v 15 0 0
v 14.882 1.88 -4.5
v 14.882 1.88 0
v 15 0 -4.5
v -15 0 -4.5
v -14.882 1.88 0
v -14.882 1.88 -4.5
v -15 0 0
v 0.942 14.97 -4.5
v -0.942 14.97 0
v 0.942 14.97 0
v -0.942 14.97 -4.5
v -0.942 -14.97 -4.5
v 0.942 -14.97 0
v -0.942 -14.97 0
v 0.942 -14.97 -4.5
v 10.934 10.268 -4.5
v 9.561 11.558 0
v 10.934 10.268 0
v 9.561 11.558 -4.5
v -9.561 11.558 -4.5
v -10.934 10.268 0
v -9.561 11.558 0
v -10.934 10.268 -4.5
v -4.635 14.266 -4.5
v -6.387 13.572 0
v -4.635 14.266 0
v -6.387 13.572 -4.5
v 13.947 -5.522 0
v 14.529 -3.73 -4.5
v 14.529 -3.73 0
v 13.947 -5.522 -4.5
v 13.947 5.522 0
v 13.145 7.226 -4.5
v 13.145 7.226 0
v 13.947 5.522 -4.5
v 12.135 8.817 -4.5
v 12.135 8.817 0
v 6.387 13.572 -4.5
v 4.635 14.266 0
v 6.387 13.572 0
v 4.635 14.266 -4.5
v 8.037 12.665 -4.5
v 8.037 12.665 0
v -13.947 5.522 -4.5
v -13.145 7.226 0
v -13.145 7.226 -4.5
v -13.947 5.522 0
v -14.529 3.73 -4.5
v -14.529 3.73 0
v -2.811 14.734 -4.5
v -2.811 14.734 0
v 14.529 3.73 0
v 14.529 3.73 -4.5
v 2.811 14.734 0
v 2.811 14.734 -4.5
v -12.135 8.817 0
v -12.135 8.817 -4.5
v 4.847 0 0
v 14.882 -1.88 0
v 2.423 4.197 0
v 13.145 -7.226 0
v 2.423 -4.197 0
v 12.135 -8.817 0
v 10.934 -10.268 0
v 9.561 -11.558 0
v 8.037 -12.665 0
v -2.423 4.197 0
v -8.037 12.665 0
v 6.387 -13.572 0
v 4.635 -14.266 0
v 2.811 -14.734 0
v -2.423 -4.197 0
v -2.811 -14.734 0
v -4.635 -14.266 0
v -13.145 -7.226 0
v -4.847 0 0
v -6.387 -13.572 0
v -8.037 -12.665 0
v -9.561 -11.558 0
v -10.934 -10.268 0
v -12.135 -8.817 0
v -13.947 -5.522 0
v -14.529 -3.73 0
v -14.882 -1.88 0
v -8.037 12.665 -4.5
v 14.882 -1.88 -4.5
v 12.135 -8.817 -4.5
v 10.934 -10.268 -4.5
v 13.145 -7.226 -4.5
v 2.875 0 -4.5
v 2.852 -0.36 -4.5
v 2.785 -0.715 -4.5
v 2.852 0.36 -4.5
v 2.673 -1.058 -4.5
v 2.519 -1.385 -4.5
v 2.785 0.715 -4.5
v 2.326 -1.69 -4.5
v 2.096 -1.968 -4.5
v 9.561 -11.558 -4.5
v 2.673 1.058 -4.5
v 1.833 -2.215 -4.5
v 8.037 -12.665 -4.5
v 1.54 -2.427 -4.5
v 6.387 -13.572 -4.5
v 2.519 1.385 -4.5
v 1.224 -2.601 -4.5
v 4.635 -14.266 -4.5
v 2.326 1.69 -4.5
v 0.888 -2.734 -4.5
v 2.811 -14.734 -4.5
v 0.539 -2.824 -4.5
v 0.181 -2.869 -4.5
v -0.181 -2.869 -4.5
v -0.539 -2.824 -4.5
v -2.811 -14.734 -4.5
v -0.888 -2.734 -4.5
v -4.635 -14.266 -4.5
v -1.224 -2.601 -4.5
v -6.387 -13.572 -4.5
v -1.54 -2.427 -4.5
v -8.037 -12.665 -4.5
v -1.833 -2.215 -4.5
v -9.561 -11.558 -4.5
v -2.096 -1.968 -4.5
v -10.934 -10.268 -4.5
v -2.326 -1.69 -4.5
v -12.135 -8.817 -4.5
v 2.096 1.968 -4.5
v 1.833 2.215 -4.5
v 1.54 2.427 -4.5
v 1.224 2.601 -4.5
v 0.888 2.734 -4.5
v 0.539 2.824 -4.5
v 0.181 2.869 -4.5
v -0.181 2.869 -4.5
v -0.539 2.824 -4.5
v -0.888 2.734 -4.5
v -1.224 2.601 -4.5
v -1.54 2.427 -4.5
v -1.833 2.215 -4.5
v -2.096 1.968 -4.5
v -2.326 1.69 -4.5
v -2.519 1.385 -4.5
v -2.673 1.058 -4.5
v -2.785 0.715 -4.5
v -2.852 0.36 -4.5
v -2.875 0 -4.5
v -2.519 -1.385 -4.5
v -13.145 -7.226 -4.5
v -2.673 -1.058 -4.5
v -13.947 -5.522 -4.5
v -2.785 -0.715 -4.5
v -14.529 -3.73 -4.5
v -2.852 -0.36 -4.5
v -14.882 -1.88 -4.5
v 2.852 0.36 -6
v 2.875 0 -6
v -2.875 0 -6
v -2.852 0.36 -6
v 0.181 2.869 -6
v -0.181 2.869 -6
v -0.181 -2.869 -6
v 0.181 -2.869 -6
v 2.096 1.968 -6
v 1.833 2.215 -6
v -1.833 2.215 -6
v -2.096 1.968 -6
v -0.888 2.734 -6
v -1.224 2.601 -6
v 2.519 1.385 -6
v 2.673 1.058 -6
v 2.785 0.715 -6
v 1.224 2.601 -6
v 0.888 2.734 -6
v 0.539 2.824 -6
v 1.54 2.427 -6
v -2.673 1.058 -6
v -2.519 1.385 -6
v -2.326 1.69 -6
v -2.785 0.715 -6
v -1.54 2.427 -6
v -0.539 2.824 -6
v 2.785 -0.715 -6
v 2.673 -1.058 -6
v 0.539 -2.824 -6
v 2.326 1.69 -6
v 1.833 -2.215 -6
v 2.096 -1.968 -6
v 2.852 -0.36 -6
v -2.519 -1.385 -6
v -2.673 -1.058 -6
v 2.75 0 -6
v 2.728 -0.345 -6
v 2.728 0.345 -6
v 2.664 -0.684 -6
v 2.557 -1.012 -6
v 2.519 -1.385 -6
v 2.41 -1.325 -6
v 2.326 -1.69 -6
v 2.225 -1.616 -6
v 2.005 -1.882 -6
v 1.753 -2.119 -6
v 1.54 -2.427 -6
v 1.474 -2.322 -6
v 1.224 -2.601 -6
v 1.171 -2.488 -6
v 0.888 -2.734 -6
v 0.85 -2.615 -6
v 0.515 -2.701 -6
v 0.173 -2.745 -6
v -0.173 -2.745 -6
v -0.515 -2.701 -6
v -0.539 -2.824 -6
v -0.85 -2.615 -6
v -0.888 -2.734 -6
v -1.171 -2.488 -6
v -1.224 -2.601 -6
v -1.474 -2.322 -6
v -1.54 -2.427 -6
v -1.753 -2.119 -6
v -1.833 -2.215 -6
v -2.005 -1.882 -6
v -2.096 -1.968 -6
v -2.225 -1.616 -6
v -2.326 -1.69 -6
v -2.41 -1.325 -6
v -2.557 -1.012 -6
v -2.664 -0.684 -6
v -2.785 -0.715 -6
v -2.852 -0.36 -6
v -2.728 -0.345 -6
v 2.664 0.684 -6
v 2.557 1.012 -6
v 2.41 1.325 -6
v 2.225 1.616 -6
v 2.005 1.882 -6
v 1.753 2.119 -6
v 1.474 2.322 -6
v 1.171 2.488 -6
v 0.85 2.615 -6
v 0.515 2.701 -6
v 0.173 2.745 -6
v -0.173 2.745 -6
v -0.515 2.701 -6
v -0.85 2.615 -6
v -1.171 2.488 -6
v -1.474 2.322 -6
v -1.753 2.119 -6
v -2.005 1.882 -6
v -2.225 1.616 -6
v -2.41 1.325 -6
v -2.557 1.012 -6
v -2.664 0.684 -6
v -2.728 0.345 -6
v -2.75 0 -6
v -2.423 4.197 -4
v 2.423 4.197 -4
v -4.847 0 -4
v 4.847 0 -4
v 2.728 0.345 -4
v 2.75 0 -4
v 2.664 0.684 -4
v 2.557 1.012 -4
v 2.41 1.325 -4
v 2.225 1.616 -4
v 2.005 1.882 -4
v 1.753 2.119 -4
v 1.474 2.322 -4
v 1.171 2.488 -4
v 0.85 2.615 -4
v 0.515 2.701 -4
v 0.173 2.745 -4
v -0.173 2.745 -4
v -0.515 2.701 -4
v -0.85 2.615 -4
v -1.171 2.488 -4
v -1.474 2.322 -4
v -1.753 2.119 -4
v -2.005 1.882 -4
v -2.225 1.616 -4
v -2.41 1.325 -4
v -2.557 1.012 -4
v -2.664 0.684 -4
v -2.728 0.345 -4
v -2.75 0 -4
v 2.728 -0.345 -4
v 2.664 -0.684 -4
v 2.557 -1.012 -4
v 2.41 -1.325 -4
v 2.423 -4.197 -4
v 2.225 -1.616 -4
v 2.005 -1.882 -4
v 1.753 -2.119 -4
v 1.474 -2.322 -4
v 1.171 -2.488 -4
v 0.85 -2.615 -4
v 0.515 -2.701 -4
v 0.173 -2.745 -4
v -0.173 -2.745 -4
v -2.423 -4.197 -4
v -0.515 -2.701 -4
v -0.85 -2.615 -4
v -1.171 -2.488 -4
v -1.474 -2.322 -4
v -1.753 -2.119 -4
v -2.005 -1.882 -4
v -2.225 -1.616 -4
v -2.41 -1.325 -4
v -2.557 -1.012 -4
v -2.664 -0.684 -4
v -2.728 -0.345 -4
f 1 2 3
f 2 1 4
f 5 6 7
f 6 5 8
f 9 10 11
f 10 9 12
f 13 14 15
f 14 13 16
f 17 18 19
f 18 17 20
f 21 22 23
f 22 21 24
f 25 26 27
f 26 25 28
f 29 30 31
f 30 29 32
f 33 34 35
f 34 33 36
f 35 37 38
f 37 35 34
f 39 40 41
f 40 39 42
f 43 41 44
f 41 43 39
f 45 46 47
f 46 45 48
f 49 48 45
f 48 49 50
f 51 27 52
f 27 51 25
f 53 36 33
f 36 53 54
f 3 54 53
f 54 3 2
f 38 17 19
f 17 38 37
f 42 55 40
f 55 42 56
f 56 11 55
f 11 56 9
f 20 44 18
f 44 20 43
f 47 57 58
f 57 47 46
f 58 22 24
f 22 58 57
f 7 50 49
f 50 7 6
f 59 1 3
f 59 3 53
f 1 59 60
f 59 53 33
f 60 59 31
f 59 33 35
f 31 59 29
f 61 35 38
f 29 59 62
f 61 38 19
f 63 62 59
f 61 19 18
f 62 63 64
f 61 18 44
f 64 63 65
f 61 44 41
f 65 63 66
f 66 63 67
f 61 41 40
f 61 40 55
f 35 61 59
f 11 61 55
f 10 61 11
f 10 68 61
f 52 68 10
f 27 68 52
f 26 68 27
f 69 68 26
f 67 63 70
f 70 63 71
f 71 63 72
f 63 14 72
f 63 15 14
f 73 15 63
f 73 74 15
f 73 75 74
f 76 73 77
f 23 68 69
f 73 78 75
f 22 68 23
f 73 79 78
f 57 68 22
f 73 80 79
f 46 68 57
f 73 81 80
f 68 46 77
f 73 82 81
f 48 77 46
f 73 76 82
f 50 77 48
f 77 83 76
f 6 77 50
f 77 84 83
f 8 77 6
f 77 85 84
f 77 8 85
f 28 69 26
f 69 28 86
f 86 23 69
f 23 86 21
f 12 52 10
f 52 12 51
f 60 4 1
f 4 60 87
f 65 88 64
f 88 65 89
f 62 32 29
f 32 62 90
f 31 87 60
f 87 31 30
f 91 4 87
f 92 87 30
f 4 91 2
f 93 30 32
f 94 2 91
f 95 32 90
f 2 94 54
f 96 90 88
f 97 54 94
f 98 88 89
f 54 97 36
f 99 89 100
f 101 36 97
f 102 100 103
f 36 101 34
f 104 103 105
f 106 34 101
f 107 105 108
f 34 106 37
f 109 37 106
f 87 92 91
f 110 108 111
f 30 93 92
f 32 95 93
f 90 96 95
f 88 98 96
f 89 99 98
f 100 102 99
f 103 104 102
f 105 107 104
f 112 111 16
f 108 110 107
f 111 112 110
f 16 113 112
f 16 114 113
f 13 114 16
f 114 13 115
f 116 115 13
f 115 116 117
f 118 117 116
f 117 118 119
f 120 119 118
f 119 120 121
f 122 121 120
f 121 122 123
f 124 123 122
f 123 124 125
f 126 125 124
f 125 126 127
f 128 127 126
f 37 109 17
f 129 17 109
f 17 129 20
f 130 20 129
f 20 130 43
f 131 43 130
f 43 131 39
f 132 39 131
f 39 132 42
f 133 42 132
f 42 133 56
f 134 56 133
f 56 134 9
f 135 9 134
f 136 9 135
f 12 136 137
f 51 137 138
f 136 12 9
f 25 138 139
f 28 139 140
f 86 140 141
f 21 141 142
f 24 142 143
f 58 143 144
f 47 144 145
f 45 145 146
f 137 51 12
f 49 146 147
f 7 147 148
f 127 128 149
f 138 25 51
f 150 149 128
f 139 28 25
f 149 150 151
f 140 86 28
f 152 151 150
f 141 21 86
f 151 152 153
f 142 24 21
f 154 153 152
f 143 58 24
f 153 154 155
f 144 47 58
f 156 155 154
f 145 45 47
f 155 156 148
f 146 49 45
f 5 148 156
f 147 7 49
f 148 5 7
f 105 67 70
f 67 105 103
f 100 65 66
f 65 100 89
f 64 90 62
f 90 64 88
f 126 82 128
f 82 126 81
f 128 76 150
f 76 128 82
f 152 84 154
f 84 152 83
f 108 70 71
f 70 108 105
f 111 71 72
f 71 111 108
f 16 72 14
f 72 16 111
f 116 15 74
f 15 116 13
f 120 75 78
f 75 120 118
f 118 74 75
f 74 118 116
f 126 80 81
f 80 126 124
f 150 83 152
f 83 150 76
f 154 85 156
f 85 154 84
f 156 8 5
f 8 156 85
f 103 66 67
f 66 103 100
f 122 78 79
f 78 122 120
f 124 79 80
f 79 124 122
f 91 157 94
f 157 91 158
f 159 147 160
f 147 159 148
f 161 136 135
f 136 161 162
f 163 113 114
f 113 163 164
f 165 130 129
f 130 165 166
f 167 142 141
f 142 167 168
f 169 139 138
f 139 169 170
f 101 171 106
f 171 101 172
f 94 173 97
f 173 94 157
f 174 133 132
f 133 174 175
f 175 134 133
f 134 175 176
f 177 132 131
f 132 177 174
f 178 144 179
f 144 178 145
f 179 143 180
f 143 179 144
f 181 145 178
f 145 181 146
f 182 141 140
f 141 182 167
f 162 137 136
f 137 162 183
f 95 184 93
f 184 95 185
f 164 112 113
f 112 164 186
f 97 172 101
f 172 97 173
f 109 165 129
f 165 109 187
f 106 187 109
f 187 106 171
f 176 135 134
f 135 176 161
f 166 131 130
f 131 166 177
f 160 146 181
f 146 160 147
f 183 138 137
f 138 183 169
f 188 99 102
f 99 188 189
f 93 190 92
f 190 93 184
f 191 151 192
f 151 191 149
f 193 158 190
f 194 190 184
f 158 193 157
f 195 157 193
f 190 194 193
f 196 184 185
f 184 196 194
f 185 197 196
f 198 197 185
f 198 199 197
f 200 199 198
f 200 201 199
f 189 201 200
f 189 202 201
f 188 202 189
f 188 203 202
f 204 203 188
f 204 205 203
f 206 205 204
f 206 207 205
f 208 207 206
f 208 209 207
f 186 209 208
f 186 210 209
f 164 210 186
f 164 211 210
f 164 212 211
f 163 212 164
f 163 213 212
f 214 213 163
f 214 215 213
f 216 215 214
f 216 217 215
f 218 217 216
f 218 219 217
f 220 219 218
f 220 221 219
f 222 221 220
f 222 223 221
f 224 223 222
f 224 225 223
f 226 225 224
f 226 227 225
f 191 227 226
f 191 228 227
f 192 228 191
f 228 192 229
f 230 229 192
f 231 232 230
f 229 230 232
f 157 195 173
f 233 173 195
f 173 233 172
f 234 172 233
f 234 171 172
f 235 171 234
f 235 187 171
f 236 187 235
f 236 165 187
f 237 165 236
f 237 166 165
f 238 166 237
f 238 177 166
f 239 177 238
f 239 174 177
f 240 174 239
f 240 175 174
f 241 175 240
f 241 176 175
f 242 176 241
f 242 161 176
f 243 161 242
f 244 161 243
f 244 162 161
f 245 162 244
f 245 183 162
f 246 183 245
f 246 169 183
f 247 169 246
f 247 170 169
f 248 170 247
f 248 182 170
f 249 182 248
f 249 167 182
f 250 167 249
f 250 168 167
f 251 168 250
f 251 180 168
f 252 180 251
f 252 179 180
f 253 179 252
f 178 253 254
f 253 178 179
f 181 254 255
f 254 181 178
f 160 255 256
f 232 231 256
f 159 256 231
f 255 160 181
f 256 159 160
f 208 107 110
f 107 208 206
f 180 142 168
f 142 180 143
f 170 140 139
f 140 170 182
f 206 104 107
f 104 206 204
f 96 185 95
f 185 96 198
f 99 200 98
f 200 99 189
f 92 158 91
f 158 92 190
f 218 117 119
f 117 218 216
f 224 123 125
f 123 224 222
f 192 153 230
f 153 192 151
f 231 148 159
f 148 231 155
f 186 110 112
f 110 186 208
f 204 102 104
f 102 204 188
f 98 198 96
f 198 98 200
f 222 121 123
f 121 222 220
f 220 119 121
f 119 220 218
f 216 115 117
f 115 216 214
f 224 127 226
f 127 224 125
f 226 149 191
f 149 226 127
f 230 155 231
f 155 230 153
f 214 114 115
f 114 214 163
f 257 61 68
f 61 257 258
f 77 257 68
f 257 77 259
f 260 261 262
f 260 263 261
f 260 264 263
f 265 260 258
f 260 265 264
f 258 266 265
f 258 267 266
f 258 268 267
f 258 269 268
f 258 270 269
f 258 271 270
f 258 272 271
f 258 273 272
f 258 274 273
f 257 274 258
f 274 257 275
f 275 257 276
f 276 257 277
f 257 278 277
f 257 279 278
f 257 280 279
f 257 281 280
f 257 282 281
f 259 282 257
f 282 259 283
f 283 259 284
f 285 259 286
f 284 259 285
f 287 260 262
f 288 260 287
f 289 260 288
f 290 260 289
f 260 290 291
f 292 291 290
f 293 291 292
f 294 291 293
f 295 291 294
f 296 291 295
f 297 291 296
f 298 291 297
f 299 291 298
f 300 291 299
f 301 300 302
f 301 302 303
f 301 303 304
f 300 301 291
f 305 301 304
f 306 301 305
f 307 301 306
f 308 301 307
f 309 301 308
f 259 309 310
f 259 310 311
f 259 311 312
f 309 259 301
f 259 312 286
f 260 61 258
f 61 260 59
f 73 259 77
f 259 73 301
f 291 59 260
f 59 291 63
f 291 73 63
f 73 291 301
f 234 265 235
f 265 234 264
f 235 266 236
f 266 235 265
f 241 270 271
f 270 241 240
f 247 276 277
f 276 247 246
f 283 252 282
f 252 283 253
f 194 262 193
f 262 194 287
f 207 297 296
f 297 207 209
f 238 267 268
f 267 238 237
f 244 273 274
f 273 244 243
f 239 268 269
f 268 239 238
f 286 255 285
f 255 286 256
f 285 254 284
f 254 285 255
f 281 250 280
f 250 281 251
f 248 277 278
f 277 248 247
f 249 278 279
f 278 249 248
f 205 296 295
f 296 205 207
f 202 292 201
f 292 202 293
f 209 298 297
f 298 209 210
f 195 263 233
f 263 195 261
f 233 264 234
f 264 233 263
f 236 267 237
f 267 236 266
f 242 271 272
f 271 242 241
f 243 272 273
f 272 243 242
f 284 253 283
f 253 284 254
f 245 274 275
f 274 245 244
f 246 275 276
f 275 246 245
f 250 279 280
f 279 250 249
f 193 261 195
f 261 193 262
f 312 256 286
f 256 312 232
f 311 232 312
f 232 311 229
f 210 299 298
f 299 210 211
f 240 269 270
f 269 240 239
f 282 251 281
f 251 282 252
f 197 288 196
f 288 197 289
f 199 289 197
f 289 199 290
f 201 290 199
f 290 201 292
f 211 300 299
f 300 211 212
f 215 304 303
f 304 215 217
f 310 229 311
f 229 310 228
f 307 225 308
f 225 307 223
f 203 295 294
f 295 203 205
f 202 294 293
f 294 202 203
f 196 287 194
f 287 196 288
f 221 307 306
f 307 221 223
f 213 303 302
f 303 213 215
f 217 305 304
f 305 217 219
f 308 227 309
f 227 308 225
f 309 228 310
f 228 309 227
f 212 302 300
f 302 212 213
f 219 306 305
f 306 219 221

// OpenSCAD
$fn = 50;


difference() {
	union() {
		translate(v = [0, 0, -4.5000000000]) {
			cylinder(h = 4.5000000000, r = 15.0000000000);
		}
		translate(v = [0, 0, -6.0000000000]) {
			cylinder(h = 6, r = 2.8750000000);
		}
	}
	union() {
		translate(v = [0, 0, 0]) {
			rotate(a = [0, 0, 0]) {
				difference() {
					union() {
						translate(v = [0, 0, -4]) {
							linear_extrude(height = 4) {
								polygon(points = [[4.8468000000, 0.0000000000], [2.4234000000, 4.1974519271], [-2.4234000000, 4.1974519271], [-4.8468000000, 0.0000000000], [-2.4234000000, -4.1974519271], [2.4234000000, -4.1974519271]]);
							}
						}
					}
					union();
				}
			}
		}
		#translate(v = [0, 0, -100.0000000000]) {
			cylinder(h = 200, r = 2.7500000000);
		}
	}
}
